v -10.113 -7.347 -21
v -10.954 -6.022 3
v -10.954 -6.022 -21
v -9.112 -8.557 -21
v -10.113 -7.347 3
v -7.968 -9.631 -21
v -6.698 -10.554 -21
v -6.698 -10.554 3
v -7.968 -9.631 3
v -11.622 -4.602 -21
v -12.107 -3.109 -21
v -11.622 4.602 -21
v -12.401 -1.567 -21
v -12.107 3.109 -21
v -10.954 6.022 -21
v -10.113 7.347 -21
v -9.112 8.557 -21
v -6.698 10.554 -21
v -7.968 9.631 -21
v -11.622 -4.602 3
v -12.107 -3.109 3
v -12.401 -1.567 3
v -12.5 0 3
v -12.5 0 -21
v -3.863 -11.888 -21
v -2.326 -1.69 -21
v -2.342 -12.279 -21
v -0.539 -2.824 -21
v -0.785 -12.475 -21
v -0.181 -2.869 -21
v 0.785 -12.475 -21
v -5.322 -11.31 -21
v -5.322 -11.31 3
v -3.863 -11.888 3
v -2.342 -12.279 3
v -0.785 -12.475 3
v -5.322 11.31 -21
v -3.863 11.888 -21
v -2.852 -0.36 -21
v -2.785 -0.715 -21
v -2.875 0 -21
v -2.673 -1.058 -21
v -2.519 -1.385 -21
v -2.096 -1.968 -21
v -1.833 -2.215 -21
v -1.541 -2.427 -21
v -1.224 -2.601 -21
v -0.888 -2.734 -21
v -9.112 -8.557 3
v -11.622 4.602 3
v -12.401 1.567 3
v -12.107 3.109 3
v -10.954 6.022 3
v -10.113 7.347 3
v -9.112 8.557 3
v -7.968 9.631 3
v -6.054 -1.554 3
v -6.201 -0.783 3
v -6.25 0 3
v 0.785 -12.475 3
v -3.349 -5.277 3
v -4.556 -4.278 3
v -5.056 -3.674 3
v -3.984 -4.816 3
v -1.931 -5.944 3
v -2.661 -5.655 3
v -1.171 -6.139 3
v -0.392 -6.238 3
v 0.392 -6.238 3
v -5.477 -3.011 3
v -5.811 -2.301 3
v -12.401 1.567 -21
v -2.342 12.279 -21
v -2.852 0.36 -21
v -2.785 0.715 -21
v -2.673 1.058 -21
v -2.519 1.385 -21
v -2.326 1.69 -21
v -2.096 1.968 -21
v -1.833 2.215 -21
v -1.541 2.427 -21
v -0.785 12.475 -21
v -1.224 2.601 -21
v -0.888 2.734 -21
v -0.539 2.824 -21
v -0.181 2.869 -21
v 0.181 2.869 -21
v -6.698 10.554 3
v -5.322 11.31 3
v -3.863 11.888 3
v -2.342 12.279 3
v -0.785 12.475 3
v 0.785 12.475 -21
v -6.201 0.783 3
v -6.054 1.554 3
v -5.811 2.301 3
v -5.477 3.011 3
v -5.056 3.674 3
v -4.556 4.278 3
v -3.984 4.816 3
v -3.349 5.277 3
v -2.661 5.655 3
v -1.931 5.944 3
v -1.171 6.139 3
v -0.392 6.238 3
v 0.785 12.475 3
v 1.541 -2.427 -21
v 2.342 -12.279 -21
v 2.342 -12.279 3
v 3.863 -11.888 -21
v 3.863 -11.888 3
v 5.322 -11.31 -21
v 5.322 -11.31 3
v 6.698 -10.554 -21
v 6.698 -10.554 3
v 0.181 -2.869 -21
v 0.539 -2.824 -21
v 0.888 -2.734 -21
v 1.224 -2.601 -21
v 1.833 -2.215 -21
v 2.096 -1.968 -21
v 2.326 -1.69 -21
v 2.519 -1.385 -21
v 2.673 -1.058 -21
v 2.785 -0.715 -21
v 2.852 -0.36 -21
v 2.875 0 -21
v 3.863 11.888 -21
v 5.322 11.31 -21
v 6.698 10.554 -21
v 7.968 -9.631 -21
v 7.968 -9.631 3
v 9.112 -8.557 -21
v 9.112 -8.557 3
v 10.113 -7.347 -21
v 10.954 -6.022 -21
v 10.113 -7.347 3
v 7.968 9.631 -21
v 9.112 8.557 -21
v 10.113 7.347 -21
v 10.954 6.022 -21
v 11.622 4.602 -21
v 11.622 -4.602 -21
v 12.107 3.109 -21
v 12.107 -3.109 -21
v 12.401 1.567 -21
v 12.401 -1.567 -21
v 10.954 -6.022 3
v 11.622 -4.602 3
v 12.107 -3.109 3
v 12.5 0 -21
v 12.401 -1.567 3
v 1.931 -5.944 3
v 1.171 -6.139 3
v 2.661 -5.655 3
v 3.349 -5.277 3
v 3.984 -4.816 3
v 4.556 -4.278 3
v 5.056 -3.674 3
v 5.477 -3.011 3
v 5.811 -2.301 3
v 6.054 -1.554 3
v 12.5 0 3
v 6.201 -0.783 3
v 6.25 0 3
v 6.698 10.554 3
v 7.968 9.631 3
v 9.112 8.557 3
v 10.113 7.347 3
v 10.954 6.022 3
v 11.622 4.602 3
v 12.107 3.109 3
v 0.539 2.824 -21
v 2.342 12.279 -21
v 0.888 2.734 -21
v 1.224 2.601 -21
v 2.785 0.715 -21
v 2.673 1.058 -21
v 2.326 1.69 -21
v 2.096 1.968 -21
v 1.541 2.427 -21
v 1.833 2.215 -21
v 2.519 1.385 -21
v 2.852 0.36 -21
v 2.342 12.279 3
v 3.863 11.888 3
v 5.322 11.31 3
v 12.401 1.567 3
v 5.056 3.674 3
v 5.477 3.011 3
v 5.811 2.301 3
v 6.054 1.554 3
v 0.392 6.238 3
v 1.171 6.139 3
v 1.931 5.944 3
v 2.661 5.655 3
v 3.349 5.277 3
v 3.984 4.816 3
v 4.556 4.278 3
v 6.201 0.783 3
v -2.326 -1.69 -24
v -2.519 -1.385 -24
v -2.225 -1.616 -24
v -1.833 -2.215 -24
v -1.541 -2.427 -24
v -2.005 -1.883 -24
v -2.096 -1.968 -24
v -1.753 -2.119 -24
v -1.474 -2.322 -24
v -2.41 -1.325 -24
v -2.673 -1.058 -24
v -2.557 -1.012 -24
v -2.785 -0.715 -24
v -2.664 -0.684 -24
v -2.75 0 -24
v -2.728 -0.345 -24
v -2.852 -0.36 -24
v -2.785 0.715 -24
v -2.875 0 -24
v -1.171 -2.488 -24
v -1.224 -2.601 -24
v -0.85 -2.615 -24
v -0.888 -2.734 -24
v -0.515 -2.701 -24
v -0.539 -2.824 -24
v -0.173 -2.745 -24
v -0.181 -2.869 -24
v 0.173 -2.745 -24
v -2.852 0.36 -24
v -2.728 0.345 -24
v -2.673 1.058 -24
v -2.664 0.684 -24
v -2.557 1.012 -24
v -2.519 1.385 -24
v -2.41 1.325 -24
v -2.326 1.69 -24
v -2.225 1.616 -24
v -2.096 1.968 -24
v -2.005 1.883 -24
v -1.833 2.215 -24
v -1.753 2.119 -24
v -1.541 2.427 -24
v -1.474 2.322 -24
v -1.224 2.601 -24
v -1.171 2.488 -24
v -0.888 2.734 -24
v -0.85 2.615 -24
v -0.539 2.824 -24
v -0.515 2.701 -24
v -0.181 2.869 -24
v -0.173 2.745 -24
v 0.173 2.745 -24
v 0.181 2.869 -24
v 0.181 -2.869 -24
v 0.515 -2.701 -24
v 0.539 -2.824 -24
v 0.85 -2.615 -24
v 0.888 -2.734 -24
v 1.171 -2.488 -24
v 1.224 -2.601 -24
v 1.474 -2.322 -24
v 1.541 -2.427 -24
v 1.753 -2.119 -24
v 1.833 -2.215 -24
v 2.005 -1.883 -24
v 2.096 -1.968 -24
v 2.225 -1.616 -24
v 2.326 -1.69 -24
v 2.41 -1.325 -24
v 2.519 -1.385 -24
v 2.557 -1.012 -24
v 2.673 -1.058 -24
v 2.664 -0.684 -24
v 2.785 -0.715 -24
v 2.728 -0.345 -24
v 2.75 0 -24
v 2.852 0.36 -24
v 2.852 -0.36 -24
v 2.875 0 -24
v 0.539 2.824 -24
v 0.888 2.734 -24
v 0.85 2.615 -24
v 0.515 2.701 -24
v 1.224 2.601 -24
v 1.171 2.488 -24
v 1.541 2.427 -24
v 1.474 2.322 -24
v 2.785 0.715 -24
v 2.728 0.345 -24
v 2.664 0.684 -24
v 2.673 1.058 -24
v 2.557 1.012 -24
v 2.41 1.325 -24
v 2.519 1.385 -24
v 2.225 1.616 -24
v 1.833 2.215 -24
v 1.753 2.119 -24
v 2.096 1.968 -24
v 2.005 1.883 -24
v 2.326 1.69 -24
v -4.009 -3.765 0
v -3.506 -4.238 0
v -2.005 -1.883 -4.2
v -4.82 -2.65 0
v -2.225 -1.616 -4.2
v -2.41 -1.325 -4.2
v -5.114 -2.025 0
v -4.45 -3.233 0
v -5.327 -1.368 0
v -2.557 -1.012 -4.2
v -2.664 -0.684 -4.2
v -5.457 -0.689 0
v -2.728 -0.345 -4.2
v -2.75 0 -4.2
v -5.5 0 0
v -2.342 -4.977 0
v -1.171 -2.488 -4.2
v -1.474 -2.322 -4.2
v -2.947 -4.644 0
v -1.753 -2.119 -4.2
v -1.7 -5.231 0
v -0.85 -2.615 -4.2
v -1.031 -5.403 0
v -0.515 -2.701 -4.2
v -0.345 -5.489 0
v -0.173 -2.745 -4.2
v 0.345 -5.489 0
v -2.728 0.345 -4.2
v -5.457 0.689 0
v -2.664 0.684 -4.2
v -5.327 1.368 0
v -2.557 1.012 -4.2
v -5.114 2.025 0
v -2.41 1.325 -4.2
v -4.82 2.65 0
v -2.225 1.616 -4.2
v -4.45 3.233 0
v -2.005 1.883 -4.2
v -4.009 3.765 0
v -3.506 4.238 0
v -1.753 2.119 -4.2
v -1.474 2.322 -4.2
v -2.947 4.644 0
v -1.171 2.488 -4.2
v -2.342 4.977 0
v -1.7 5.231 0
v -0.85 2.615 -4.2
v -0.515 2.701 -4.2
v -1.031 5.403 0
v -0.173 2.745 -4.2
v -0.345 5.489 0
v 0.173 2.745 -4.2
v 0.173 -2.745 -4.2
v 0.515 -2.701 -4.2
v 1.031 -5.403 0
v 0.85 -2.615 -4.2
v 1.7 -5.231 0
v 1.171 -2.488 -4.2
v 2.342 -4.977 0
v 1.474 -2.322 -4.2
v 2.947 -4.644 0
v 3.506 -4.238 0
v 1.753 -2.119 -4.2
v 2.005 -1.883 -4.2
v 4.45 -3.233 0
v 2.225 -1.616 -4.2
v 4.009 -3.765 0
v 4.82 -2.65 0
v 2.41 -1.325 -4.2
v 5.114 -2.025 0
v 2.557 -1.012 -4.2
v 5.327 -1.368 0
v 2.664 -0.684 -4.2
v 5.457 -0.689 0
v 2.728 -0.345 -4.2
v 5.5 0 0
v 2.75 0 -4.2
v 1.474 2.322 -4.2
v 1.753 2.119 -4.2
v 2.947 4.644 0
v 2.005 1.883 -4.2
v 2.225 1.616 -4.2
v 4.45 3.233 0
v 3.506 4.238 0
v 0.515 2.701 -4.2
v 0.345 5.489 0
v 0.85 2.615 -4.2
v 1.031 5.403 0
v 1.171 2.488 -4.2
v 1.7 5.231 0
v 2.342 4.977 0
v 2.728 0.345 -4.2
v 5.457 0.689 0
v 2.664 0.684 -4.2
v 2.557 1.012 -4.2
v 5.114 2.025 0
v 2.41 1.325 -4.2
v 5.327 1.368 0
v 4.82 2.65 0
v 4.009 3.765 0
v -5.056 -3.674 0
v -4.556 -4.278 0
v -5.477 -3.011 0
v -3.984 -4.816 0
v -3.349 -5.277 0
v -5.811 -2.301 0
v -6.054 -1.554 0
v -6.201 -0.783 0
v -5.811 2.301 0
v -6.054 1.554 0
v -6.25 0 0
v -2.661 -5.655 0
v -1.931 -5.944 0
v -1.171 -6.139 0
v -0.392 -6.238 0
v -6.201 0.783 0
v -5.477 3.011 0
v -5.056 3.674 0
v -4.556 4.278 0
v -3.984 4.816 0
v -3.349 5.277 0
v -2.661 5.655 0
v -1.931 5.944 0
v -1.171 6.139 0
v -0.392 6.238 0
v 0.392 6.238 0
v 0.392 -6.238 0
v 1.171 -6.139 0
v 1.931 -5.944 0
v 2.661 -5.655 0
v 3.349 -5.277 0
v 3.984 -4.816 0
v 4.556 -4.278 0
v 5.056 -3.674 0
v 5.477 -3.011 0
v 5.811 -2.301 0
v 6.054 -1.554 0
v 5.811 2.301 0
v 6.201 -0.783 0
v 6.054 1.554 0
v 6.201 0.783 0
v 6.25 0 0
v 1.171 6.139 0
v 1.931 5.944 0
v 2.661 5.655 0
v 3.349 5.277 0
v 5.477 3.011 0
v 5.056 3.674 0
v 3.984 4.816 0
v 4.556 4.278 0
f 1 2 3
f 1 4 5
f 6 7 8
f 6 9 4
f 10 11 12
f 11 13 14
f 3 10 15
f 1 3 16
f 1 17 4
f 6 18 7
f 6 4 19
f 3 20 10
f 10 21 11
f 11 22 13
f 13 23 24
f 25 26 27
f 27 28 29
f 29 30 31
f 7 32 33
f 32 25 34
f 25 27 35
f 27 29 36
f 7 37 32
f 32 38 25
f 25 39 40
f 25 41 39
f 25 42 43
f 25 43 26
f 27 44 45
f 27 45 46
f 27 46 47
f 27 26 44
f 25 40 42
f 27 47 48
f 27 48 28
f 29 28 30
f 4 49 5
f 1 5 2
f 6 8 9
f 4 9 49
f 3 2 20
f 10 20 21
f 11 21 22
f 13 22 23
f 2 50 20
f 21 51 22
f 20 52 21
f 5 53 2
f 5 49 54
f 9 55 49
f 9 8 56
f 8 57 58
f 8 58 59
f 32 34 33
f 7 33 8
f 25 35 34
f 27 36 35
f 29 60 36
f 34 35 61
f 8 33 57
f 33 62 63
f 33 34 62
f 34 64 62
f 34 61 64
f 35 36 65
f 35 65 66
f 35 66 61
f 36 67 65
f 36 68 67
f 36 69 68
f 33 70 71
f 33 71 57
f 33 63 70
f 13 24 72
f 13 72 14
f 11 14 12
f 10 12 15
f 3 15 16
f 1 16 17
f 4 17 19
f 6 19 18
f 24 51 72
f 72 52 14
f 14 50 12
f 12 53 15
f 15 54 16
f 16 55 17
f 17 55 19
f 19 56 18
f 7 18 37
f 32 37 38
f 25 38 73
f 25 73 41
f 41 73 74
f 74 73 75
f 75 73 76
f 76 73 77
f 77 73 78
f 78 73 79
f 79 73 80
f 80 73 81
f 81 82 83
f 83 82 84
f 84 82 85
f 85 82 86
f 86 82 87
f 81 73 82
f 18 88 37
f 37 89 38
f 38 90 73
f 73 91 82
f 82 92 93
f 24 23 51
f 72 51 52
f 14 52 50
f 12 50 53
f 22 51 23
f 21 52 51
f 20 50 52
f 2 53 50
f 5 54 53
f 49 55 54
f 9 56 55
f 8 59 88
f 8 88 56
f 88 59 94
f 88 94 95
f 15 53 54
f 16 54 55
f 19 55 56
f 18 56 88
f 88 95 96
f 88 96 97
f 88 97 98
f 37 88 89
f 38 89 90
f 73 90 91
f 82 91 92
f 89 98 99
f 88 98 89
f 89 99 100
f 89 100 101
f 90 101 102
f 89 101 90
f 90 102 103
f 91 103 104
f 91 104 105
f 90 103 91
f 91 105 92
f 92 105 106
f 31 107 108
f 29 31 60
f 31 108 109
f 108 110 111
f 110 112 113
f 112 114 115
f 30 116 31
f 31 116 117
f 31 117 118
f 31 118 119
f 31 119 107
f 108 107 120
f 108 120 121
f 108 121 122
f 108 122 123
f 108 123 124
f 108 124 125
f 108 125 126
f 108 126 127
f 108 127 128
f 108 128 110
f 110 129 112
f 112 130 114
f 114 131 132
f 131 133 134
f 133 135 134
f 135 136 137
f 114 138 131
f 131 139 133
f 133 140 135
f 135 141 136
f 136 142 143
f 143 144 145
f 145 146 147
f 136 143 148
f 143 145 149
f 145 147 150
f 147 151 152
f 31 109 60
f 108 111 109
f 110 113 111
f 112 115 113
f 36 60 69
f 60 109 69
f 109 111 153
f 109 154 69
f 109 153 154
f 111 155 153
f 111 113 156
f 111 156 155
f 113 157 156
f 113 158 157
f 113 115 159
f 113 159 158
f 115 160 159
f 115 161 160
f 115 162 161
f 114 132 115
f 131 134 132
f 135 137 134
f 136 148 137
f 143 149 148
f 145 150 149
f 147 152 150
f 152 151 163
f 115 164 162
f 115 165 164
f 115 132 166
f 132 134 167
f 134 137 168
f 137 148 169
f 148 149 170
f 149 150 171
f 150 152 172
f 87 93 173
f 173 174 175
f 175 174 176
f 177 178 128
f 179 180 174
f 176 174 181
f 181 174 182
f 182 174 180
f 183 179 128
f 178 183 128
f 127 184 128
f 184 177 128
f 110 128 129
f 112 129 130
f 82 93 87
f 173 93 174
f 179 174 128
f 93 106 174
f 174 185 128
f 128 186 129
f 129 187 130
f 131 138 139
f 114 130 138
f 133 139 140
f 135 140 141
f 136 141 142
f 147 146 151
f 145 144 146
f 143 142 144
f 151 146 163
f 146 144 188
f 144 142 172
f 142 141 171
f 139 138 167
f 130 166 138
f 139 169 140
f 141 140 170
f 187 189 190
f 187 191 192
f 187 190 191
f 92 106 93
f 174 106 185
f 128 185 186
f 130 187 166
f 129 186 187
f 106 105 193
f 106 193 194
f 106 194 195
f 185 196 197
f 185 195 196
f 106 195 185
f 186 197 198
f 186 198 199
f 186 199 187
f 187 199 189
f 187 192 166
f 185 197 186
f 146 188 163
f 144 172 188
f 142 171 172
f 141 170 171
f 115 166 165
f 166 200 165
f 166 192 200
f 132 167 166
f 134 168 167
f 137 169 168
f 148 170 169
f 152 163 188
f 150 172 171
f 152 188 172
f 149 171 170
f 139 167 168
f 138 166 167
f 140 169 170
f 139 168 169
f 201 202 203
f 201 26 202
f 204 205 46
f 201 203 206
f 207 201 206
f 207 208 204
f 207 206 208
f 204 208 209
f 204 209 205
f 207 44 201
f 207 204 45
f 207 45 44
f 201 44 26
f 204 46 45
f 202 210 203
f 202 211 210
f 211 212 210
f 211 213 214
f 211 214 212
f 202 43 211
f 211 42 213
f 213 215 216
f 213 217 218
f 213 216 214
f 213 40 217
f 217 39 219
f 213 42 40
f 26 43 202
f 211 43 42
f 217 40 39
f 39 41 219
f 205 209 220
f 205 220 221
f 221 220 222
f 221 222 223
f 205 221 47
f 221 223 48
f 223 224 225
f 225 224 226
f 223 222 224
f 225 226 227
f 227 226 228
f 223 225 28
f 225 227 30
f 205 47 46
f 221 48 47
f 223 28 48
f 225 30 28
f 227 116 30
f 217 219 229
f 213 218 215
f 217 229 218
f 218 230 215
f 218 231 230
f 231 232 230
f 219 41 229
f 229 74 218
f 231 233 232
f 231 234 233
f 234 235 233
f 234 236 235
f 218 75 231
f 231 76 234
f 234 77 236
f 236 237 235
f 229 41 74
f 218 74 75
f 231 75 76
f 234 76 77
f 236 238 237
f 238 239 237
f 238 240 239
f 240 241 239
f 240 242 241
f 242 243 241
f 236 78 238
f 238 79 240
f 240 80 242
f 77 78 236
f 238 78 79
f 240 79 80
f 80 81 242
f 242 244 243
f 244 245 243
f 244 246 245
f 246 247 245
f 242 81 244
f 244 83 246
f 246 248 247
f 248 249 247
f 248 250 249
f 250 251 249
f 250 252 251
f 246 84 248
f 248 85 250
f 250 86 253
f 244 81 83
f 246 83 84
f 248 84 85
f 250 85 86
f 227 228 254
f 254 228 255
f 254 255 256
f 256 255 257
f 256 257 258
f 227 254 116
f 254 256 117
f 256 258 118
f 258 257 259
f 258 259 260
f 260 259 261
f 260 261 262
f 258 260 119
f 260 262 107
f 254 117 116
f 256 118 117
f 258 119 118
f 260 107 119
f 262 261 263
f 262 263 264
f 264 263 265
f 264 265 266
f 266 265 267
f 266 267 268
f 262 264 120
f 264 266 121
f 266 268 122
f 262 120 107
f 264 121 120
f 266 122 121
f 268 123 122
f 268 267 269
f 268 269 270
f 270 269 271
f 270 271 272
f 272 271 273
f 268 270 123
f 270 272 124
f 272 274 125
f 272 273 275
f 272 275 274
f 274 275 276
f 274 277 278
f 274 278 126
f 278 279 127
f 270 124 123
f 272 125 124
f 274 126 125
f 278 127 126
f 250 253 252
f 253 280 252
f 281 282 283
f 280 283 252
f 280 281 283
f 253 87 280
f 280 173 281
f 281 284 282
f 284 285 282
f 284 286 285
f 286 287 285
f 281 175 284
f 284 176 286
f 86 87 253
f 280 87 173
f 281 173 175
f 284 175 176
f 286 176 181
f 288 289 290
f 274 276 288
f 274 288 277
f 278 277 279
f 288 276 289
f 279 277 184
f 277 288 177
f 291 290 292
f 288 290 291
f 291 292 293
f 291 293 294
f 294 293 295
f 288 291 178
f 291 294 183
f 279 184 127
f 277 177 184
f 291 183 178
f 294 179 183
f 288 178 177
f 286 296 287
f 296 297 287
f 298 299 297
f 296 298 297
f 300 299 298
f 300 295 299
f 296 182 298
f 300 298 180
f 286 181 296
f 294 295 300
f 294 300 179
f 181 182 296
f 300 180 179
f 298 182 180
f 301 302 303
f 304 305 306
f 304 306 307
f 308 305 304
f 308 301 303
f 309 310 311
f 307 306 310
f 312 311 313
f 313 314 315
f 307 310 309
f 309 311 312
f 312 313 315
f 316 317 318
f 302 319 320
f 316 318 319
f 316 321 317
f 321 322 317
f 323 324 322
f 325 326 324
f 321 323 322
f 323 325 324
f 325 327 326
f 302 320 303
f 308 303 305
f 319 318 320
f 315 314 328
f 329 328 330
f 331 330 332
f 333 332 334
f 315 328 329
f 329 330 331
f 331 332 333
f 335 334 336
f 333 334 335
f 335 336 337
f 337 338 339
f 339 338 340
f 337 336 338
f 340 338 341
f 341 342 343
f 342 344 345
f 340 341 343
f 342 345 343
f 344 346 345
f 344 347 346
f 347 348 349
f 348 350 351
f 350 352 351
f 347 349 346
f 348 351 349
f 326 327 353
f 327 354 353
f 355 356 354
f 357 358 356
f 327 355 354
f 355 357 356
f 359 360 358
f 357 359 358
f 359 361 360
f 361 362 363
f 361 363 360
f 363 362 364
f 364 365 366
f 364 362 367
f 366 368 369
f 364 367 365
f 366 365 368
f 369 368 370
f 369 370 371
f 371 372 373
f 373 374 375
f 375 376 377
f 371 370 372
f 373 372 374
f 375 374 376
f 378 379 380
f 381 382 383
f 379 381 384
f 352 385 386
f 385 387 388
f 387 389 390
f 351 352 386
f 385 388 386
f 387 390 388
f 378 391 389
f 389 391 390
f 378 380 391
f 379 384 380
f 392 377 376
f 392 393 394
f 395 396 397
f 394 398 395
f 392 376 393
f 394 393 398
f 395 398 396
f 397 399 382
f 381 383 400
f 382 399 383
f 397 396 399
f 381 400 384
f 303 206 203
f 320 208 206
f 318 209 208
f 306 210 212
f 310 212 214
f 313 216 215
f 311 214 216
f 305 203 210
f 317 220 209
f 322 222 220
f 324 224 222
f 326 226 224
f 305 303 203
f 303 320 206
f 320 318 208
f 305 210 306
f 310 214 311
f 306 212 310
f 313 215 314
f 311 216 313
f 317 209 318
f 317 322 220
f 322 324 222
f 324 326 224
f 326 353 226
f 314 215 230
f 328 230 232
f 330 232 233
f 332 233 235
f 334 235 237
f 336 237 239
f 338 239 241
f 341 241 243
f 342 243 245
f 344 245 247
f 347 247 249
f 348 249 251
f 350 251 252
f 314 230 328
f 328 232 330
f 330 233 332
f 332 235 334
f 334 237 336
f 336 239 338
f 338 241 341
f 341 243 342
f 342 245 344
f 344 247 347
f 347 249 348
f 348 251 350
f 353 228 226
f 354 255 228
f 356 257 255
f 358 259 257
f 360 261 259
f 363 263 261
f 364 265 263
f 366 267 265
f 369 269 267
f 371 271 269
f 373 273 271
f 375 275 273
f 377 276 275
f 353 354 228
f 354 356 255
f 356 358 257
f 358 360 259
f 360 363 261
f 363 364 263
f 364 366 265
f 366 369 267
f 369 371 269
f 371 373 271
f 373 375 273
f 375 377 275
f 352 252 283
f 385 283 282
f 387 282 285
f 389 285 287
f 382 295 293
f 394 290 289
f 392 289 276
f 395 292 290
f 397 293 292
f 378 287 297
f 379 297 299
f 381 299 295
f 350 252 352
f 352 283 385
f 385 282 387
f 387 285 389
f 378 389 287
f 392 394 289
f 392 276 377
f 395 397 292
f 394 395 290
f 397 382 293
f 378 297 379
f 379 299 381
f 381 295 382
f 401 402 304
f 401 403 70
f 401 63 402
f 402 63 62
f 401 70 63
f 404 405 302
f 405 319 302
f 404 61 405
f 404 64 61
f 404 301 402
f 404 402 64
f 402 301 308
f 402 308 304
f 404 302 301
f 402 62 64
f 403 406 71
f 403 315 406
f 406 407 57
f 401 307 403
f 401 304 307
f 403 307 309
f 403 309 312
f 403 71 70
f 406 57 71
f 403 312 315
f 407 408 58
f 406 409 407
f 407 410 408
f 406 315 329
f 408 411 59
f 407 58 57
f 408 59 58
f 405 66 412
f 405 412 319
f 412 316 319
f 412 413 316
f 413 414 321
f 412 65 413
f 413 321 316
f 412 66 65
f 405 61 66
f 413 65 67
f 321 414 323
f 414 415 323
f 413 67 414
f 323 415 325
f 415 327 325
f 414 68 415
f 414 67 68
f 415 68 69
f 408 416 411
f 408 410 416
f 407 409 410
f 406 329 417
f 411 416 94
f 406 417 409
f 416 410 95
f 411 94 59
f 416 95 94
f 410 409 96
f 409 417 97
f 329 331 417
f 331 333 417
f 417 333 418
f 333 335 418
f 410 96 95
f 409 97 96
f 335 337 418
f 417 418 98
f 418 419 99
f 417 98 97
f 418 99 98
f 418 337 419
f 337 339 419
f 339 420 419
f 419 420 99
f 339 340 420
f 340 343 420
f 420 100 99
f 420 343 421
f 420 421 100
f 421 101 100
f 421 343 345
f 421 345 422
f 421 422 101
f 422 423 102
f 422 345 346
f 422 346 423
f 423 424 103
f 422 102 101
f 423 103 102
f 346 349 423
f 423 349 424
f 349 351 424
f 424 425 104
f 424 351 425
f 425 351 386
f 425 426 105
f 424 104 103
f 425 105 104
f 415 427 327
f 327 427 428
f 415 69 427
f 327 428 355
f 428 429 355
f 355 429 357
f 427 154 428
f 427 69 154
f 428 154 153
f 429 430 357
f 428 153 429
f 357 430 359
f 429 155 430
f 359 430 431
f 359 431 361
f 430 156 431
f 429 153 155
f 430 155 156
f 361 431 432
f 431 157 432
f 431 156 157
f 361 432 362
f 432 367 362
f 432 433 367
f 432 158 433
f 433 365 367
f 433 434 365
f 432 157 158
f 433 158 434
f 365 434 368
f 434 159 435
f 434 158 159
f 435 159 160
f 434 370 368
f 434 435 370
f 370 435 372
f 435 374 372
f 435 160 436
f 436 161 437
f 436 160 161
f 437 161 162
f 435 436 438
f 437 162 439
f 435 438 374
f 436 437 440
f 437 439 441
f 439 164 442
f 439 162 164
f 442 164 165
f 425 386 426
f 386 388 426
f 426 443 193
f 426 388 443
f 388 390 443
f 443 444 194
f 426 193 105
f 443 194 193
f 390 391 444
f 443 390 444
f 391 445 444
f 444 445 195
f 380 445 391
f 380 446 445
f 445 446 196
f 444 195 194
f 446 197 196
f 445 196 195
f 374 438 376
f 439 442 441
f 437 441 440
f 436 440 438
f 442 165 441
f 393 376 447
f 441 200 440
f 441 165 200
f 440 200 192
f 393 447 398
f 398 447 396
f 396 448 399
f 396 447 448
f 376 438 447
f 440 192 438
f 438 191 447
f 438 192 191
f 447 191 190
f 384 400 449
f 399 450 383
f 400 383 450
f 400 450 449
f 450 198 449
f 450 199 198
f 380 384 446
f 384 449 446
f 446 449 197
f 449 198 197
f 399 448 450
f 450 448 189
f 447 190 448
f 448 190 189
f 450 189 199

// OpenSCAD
$fn = 50;


difference() {
	union() {
		translate(v = [0, 0, -21.0000000000]) {
			cylinder(h = 24, r = 12.5000000000);
		}
		#translate(v = [0, 0, -24.0000000000]) {
			cylinder(h = 24, r = 2.8750000000);
		}
	}
	union() {
		translate(v = [0, 0, 0]) {
			rotate(a = [0, 0, 0]) {
				difference() {
					union() {
						translate(v = [0, 0, -24.0000000000]) {
							cylinder(h = 24, r = 2.2500000000);
						}
						translate(v = [0, 0, -4.2000000000]) {
							cylinder(h = 4.2000000000, r1 = 2.7500000000, r2 = 5.5000000000);
						}
						translate(v = [0, 0, -24.0000000000]) {
							cylinder(h = 24, r = 2.7500000000);
						}
						translate(v = [0, 0, -24.0000000000]) {
							cylinder(h = 24, r = 2.2500000000);
						}
					}
					union();
				}
			}
		}
		#cylinder(h = 3, r = 6.2500000000);
	}
}
